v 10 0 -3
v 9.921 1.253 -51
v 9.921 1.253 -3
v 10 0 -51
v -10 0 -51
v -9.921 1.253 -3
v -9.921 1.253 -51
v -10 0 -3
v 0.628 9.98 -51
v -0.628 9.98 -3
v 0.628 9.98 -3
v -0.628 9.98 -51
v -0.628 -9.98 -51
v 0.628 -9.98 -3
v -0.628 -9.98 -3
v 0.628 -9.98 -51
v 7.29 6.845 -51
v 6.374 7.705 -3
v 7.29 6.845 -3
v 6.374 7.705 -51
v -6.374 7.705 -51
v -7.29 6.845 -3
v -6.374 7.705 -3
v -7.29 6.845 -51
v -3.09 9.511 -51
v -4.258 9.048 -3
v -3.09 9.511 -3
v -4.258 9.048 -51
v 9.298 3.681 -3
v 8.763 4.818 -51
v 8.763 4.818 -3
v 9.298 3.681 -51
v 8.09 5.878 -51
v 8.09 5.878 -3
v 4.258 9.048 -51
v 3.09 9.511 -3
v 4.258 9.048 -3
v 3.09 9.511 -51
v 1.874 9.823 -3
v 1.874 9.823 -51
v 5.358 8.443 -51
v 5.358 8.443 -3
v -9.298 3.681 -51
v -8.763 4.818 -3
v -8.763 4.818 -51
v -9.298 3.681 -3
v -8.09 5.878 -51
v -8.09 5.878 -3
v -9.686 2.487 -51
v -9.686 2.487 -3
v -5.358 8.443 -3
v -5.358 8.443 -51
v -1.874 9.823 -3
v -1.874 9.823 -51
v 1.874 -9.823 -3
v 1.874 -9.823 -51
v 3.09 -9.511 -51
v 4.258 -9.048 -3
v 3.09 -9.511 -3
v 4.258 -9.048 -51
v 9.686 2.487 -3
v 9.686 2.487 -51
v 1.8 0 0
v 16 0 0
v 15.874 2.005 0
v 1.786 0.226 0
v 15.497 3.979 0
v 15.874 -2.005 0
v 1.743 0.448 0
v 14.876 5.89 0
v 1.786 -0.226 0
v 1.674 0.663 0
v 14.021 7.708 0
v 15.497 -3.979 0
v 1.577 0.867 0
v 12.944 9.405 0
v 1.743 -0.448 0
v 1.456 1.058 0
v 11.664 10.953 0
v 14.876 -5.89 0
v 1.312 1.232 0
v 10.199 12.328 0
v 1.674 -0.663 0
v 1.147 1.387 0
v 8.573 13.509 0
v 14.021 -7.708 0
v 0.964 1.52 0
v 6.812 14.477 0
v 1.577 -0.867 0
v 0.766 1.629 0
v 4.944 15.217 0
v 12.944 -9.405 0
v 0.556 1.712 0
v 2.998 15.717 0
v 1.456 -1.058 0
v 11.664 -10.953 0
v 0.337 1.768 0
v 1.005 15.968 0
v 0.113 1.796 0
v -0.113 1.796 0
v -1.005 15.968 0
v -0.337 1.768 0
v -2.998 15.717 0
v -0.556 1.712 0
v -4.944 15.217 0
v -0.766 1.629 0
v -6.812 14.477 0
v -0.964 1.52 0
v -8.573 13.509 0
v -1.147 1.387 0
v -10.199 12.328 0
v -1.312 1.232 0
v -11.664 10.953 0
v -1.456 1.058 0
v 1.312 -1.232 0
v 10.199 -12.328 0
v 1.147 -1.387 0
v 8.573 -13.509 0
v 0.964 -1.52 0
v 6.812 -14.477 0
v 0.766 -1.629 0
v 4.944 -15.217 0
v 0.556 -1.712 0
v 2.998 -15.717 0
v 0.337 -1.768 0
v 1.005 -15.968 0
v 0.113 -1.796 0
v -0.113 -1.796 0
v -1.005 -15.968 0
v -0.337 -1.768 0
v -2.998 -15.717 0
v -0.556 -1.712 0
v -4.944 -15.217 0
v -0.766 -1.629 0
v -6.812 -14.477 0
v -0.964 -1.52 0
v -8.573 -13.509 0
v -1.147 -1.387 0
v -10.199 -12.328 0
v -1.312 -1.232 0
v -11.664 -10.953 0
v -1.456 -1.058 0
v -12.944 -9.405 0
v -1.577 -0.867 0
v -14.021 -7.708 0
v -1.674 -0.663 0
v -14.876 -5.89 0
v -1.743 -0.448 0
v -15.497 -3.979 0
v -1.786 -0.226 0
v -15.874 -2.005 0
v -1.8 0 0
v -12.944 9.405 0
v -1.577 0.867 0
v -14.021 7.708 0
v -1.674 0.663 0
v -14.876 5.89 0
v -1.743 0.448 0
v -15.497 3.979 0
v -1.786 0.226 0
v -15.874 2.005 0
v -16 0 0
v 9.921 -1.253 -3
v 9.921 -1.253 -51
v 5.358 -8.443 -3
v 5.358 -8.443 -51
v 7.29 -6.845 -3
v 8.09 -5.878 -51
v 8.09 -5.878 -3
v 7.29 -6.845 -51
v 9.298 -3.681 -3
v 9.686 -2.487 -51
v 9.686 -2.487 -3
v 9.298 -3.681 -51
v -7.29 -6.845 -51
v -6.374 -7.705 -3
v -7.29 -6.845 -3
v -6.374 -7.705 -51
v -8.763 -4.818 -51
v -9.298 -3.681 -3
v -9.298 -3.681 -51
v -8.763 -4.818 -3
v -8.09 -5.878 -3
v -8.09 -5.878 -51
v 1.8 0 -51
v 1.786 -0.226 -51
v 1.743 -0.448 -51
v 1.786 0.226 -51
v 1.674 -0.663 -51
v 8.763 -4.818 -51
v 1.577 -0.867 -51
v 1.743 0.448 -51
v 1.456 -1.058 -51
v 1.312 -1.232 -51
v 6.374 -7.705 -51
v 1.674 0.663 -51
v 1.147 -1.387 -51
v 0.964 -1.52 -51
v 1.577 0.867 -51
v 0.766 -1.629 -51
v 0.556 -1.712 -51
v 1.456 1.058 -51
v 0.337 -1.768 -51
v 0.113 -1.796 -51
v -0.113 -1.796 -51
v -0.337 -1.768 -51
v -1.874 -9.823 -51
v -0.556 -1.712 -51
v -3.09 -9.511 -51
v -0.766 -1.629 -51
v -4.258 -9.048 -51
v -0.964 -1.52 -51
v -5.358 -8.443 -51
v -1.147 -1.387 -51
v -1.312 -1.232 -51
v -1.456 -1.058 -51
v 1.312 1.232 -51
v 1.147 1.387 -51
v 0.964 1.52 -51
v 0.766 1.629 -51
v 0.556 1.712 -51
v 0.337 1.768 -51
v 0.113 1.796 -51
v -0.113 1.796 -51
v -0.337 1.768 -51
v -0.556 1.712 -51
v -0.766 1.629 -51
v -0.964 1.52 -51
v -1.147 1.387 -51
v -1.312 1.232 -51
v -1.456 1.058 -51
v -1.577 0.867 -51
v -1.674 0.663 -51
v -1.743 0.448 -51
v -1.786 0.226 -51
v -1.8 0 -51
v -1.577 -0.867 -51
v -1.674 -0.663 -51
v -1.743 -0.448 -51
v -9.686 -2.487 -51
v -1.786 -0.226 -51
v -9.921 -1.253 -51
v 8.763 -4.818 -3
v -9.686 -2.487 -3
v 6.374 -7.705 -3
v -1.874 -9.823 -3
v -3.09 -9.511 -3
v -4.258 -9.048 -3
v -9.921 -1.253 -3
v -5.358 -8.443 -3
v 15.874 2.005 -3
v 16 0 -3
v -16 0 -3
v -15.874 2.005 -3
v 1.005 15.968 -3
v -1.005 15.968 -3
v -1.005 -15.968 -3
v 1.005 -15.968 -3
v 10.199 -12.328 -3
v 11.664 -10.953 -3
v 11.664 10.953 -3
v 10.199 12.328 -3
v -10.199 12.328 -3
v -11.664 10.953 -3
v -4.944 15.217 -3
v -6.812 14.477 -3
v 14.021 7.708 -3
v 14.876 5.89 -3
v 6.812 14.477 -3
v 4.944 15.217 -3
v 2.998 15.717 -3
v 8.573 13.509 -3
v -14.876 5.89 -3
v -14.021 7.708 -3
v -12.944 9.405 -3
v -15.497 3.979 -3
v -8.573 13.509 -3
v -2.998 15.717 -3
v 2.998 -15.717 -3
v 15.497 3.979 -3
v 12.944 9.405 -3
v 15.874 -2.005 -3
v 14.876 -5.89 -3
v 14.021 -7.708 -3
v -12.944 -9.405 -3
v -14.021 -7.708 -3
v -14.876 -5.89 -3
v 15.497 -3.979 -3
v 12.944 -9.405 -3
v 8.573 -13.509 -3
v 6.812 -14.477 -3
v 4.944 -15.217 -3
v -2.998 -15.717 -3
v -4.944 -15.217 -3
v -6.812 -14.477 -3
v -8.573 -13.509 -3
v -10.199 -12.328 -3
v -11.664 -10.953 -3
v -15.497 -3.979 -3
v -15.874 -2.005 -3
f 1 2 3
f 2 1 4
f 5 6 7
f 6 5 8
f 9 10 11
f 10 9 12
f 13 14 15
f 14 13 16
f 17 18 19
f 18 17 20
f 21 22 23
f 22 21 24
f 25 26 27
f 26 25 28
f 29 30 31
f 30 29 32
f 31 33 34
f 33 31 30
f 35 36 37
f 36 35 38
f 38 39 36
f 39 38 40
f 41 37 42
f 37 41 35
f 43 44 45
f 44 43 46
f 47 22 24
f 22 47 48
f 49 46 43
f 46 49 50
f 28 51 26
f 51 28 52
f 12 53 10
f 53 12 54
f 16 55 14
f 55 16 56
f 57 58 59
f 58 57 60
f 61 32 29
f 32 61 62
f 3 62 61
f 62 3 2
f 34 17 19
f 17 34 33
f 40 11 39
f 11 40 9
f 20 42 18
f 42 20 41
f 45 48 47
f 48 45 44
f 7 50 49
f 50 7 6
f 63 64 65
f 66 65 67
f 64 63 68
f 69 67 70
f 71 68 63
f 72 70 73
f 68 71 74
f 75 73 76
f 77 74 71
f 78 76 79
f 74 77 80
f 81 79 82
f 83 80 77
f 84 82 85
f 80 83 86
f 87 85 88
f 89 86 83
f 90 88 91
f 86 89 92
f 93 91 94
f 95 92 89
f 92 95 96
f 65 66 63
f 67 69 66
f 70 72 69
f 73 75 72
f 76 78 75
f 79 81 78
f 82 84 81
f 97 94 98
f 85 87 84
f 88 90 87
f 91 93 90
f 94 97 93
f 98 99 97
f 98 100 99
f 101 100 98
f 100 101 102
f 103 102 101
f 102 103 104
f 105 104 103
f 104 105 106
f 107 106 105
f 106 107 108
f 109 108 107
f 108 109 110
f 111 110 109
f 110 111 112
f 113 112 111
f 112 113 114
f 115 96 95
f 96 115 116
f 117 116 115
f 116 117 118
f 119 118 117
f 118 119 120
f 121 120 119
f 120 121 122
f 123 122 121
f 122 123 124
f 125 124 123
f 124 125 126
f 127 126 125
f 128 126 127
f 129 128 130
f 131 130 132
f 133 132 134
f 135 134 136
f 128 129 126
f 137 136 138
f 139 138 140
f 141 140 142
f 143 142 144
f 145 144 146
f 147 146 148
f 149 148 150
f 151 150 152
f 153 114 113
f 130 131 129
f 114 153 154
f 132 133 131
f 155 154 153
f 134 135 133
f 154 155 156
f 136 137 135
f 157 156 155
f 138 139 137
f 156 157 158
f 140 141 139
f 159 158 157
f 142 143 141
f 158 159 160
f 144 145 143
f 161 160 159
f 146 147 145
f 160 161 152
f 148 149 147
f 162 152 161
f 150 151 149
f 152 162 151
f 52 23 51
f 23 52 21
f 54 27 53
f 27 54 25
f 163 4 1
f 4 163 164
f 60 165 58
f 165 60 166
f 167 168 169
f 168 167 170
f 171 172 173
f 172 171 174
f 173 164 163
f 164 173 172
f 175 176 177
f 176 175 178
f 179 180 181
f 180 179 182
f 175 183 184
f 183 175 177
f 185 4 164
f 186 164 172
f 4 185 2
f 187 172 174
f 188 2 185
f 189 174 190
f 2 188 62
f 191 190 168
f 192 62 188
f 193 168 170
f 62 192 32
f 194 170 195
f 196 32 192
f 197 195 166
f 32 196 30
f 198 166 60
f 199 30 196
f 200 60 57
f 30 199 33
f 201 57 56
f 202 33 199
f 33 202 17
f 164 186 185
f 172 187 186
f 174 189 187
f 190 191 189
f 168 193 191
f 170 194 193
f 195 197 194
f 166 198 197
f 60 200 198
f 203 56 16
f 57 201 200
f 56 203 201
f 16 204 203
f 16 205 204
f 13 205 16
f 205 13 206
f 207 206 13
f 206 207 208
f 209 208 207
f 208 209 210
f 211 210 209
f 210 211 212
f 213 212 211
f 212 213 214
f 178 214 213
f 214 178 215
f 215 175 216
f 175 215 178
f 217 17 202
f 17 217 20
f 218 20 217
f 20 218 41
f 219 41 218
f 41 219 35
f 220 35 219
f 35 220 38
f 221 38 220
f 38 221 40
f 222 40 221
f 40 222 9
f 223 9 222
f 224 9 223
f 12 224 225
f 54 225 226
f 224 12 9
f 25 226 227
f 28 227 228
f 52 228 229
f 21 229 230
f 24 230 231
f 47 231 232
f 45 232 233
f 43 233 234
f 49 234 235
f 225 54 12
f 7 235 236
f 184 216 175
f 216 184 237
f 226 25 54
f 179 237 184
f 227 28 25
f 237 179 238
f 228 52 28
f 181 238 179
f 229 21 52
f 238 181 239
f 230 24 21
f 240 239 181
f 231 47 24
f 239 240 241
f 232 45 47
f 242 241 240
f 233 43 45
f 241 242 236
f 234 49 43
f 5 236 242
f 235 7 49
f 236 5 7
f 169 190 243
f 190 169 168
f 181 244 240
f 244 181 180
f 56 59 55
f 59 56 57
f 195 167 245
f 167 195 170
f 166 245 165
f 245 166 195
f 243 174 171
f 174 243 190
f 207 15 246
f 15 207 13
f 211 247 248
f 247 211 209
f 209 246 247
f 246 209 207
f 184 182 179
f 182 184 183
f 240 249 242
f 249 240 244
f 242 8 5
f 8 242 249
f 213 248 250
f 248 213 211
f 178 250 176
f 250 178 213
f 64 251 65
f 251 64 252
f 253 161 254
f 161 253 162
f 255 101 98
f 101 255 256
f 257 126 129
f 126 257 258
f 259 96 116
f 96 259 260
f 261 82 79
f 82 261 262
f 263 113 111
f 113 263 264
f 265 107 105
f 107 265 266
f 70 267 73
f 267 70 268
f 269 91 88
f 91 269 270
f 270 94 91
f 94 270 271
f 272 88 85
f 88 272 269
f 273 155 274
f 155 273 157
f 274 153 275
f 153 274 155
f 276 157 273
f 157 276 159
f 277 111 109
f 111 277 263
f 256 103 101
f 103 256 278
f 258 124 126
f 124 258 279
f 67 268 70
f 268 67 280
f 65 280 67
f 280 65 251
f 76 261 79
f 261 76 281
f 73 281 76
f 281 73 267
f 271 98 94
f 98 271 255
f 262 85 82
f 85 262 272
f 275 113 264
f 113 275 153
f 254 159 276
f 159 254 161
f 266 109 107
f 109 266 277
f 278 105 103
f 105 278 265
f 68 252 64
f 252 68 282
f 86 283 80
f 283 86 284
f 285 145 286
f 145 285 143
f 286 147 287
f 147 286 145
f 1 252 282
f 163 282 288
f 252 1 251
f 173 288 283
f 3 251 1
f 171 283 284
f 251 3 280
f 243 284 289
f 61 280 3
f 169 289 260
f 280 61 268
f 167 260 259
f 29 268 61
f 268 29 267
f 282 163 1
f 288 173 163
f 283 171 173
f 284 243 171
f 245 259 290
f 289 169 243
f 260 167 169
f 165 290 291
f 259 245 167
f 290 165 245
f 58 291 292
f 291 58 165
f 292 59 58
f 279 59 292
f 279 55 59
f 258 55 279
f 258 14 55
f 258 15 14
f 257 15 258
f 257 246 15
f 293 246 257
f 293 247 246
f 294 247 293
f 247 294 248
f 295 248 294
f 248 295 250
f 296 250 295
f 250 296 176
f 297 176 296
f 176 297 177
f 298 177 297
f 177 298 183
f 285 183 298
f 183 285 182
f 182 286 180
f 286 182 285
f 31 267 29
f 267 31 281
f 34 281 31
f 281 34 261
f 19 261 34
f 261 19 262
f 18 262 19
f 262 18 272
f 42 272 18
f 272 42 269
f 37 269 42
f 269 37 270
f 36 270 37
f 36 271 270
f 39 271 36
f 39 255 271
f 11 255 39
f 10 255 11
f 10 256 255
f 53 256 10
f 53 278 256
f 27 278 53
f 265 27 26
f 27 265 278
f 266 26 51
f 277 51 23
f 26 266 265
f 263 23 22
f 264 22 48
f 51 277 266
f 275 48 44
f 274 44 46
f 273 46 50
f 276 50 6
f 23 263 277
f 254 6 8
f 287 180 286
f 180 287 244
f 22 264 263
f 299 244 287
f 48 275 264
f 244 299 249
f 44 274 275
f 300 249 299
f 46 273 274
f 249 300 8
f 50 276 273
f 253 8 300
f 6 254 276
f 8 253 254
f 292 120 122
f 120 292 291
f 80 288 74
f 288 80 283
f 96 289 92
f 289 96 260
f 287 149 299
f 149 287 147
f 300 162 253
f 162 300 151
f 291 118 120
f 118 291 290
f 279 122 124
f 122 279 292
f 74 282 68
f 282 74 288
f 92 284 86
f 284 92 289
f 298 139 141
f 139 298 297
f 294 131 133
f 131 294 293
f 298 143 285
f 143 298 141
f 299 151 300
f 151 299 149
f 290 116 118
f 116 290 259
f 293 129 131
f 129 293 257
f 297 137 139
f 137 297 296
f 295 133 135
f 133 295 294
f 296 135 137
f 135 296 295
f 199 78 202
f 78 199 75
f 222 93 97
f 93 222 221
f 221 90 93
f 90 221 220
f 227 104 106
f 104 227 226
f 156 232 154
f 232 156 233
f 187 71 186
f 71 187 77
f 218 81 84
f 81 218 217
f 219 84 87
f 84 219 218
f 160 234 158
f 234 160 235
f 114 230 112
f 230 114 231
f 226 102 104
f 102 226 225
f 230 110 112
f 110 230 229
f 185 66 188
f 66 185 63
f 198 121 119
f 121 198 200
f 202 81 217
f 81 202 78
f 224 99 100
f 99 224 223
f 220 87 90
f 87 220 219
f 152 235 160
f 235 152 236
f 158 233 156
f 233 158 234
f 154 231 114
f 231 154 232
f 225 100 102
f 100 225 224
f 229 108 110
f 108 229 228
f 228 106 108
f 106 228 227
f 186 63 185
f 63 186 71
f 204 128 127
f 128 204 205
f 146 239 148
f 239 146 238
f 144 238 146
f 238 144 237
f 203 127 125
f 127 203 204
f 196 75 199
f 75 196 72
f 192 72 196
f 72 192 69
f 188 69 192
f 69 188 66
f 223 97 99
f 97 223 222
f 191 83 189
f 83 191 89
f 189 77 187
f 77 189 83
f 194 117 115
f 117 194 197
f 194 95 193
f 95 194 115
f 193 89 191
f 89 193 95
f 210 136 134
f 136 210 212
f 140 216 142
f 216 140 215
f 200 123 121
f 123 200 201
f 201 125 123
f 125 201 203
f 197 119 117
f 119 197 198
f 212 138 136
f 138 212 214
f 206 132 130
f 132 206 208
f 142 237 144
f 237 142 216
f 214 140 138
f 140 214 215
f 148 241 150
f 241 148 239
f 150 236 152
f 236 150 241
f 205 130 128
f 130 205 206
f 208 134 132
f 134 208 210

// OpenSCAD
$fn = 50;


difference() {
	union() {
		translate(v = [0, 0, -51.0000000000]) {
			cylinder(h = 51, r = 10.0000000000);
		}
		translate(v = [0, 0, -3.0000000000]) {
			cylinder(h = 3, r = 16.0000000000);
		}
	}
	union() {
		#translate(v = [0, 0, -51]) {
			cylinder(h = 51, r = 1.8000000000);
		}
	}
}
